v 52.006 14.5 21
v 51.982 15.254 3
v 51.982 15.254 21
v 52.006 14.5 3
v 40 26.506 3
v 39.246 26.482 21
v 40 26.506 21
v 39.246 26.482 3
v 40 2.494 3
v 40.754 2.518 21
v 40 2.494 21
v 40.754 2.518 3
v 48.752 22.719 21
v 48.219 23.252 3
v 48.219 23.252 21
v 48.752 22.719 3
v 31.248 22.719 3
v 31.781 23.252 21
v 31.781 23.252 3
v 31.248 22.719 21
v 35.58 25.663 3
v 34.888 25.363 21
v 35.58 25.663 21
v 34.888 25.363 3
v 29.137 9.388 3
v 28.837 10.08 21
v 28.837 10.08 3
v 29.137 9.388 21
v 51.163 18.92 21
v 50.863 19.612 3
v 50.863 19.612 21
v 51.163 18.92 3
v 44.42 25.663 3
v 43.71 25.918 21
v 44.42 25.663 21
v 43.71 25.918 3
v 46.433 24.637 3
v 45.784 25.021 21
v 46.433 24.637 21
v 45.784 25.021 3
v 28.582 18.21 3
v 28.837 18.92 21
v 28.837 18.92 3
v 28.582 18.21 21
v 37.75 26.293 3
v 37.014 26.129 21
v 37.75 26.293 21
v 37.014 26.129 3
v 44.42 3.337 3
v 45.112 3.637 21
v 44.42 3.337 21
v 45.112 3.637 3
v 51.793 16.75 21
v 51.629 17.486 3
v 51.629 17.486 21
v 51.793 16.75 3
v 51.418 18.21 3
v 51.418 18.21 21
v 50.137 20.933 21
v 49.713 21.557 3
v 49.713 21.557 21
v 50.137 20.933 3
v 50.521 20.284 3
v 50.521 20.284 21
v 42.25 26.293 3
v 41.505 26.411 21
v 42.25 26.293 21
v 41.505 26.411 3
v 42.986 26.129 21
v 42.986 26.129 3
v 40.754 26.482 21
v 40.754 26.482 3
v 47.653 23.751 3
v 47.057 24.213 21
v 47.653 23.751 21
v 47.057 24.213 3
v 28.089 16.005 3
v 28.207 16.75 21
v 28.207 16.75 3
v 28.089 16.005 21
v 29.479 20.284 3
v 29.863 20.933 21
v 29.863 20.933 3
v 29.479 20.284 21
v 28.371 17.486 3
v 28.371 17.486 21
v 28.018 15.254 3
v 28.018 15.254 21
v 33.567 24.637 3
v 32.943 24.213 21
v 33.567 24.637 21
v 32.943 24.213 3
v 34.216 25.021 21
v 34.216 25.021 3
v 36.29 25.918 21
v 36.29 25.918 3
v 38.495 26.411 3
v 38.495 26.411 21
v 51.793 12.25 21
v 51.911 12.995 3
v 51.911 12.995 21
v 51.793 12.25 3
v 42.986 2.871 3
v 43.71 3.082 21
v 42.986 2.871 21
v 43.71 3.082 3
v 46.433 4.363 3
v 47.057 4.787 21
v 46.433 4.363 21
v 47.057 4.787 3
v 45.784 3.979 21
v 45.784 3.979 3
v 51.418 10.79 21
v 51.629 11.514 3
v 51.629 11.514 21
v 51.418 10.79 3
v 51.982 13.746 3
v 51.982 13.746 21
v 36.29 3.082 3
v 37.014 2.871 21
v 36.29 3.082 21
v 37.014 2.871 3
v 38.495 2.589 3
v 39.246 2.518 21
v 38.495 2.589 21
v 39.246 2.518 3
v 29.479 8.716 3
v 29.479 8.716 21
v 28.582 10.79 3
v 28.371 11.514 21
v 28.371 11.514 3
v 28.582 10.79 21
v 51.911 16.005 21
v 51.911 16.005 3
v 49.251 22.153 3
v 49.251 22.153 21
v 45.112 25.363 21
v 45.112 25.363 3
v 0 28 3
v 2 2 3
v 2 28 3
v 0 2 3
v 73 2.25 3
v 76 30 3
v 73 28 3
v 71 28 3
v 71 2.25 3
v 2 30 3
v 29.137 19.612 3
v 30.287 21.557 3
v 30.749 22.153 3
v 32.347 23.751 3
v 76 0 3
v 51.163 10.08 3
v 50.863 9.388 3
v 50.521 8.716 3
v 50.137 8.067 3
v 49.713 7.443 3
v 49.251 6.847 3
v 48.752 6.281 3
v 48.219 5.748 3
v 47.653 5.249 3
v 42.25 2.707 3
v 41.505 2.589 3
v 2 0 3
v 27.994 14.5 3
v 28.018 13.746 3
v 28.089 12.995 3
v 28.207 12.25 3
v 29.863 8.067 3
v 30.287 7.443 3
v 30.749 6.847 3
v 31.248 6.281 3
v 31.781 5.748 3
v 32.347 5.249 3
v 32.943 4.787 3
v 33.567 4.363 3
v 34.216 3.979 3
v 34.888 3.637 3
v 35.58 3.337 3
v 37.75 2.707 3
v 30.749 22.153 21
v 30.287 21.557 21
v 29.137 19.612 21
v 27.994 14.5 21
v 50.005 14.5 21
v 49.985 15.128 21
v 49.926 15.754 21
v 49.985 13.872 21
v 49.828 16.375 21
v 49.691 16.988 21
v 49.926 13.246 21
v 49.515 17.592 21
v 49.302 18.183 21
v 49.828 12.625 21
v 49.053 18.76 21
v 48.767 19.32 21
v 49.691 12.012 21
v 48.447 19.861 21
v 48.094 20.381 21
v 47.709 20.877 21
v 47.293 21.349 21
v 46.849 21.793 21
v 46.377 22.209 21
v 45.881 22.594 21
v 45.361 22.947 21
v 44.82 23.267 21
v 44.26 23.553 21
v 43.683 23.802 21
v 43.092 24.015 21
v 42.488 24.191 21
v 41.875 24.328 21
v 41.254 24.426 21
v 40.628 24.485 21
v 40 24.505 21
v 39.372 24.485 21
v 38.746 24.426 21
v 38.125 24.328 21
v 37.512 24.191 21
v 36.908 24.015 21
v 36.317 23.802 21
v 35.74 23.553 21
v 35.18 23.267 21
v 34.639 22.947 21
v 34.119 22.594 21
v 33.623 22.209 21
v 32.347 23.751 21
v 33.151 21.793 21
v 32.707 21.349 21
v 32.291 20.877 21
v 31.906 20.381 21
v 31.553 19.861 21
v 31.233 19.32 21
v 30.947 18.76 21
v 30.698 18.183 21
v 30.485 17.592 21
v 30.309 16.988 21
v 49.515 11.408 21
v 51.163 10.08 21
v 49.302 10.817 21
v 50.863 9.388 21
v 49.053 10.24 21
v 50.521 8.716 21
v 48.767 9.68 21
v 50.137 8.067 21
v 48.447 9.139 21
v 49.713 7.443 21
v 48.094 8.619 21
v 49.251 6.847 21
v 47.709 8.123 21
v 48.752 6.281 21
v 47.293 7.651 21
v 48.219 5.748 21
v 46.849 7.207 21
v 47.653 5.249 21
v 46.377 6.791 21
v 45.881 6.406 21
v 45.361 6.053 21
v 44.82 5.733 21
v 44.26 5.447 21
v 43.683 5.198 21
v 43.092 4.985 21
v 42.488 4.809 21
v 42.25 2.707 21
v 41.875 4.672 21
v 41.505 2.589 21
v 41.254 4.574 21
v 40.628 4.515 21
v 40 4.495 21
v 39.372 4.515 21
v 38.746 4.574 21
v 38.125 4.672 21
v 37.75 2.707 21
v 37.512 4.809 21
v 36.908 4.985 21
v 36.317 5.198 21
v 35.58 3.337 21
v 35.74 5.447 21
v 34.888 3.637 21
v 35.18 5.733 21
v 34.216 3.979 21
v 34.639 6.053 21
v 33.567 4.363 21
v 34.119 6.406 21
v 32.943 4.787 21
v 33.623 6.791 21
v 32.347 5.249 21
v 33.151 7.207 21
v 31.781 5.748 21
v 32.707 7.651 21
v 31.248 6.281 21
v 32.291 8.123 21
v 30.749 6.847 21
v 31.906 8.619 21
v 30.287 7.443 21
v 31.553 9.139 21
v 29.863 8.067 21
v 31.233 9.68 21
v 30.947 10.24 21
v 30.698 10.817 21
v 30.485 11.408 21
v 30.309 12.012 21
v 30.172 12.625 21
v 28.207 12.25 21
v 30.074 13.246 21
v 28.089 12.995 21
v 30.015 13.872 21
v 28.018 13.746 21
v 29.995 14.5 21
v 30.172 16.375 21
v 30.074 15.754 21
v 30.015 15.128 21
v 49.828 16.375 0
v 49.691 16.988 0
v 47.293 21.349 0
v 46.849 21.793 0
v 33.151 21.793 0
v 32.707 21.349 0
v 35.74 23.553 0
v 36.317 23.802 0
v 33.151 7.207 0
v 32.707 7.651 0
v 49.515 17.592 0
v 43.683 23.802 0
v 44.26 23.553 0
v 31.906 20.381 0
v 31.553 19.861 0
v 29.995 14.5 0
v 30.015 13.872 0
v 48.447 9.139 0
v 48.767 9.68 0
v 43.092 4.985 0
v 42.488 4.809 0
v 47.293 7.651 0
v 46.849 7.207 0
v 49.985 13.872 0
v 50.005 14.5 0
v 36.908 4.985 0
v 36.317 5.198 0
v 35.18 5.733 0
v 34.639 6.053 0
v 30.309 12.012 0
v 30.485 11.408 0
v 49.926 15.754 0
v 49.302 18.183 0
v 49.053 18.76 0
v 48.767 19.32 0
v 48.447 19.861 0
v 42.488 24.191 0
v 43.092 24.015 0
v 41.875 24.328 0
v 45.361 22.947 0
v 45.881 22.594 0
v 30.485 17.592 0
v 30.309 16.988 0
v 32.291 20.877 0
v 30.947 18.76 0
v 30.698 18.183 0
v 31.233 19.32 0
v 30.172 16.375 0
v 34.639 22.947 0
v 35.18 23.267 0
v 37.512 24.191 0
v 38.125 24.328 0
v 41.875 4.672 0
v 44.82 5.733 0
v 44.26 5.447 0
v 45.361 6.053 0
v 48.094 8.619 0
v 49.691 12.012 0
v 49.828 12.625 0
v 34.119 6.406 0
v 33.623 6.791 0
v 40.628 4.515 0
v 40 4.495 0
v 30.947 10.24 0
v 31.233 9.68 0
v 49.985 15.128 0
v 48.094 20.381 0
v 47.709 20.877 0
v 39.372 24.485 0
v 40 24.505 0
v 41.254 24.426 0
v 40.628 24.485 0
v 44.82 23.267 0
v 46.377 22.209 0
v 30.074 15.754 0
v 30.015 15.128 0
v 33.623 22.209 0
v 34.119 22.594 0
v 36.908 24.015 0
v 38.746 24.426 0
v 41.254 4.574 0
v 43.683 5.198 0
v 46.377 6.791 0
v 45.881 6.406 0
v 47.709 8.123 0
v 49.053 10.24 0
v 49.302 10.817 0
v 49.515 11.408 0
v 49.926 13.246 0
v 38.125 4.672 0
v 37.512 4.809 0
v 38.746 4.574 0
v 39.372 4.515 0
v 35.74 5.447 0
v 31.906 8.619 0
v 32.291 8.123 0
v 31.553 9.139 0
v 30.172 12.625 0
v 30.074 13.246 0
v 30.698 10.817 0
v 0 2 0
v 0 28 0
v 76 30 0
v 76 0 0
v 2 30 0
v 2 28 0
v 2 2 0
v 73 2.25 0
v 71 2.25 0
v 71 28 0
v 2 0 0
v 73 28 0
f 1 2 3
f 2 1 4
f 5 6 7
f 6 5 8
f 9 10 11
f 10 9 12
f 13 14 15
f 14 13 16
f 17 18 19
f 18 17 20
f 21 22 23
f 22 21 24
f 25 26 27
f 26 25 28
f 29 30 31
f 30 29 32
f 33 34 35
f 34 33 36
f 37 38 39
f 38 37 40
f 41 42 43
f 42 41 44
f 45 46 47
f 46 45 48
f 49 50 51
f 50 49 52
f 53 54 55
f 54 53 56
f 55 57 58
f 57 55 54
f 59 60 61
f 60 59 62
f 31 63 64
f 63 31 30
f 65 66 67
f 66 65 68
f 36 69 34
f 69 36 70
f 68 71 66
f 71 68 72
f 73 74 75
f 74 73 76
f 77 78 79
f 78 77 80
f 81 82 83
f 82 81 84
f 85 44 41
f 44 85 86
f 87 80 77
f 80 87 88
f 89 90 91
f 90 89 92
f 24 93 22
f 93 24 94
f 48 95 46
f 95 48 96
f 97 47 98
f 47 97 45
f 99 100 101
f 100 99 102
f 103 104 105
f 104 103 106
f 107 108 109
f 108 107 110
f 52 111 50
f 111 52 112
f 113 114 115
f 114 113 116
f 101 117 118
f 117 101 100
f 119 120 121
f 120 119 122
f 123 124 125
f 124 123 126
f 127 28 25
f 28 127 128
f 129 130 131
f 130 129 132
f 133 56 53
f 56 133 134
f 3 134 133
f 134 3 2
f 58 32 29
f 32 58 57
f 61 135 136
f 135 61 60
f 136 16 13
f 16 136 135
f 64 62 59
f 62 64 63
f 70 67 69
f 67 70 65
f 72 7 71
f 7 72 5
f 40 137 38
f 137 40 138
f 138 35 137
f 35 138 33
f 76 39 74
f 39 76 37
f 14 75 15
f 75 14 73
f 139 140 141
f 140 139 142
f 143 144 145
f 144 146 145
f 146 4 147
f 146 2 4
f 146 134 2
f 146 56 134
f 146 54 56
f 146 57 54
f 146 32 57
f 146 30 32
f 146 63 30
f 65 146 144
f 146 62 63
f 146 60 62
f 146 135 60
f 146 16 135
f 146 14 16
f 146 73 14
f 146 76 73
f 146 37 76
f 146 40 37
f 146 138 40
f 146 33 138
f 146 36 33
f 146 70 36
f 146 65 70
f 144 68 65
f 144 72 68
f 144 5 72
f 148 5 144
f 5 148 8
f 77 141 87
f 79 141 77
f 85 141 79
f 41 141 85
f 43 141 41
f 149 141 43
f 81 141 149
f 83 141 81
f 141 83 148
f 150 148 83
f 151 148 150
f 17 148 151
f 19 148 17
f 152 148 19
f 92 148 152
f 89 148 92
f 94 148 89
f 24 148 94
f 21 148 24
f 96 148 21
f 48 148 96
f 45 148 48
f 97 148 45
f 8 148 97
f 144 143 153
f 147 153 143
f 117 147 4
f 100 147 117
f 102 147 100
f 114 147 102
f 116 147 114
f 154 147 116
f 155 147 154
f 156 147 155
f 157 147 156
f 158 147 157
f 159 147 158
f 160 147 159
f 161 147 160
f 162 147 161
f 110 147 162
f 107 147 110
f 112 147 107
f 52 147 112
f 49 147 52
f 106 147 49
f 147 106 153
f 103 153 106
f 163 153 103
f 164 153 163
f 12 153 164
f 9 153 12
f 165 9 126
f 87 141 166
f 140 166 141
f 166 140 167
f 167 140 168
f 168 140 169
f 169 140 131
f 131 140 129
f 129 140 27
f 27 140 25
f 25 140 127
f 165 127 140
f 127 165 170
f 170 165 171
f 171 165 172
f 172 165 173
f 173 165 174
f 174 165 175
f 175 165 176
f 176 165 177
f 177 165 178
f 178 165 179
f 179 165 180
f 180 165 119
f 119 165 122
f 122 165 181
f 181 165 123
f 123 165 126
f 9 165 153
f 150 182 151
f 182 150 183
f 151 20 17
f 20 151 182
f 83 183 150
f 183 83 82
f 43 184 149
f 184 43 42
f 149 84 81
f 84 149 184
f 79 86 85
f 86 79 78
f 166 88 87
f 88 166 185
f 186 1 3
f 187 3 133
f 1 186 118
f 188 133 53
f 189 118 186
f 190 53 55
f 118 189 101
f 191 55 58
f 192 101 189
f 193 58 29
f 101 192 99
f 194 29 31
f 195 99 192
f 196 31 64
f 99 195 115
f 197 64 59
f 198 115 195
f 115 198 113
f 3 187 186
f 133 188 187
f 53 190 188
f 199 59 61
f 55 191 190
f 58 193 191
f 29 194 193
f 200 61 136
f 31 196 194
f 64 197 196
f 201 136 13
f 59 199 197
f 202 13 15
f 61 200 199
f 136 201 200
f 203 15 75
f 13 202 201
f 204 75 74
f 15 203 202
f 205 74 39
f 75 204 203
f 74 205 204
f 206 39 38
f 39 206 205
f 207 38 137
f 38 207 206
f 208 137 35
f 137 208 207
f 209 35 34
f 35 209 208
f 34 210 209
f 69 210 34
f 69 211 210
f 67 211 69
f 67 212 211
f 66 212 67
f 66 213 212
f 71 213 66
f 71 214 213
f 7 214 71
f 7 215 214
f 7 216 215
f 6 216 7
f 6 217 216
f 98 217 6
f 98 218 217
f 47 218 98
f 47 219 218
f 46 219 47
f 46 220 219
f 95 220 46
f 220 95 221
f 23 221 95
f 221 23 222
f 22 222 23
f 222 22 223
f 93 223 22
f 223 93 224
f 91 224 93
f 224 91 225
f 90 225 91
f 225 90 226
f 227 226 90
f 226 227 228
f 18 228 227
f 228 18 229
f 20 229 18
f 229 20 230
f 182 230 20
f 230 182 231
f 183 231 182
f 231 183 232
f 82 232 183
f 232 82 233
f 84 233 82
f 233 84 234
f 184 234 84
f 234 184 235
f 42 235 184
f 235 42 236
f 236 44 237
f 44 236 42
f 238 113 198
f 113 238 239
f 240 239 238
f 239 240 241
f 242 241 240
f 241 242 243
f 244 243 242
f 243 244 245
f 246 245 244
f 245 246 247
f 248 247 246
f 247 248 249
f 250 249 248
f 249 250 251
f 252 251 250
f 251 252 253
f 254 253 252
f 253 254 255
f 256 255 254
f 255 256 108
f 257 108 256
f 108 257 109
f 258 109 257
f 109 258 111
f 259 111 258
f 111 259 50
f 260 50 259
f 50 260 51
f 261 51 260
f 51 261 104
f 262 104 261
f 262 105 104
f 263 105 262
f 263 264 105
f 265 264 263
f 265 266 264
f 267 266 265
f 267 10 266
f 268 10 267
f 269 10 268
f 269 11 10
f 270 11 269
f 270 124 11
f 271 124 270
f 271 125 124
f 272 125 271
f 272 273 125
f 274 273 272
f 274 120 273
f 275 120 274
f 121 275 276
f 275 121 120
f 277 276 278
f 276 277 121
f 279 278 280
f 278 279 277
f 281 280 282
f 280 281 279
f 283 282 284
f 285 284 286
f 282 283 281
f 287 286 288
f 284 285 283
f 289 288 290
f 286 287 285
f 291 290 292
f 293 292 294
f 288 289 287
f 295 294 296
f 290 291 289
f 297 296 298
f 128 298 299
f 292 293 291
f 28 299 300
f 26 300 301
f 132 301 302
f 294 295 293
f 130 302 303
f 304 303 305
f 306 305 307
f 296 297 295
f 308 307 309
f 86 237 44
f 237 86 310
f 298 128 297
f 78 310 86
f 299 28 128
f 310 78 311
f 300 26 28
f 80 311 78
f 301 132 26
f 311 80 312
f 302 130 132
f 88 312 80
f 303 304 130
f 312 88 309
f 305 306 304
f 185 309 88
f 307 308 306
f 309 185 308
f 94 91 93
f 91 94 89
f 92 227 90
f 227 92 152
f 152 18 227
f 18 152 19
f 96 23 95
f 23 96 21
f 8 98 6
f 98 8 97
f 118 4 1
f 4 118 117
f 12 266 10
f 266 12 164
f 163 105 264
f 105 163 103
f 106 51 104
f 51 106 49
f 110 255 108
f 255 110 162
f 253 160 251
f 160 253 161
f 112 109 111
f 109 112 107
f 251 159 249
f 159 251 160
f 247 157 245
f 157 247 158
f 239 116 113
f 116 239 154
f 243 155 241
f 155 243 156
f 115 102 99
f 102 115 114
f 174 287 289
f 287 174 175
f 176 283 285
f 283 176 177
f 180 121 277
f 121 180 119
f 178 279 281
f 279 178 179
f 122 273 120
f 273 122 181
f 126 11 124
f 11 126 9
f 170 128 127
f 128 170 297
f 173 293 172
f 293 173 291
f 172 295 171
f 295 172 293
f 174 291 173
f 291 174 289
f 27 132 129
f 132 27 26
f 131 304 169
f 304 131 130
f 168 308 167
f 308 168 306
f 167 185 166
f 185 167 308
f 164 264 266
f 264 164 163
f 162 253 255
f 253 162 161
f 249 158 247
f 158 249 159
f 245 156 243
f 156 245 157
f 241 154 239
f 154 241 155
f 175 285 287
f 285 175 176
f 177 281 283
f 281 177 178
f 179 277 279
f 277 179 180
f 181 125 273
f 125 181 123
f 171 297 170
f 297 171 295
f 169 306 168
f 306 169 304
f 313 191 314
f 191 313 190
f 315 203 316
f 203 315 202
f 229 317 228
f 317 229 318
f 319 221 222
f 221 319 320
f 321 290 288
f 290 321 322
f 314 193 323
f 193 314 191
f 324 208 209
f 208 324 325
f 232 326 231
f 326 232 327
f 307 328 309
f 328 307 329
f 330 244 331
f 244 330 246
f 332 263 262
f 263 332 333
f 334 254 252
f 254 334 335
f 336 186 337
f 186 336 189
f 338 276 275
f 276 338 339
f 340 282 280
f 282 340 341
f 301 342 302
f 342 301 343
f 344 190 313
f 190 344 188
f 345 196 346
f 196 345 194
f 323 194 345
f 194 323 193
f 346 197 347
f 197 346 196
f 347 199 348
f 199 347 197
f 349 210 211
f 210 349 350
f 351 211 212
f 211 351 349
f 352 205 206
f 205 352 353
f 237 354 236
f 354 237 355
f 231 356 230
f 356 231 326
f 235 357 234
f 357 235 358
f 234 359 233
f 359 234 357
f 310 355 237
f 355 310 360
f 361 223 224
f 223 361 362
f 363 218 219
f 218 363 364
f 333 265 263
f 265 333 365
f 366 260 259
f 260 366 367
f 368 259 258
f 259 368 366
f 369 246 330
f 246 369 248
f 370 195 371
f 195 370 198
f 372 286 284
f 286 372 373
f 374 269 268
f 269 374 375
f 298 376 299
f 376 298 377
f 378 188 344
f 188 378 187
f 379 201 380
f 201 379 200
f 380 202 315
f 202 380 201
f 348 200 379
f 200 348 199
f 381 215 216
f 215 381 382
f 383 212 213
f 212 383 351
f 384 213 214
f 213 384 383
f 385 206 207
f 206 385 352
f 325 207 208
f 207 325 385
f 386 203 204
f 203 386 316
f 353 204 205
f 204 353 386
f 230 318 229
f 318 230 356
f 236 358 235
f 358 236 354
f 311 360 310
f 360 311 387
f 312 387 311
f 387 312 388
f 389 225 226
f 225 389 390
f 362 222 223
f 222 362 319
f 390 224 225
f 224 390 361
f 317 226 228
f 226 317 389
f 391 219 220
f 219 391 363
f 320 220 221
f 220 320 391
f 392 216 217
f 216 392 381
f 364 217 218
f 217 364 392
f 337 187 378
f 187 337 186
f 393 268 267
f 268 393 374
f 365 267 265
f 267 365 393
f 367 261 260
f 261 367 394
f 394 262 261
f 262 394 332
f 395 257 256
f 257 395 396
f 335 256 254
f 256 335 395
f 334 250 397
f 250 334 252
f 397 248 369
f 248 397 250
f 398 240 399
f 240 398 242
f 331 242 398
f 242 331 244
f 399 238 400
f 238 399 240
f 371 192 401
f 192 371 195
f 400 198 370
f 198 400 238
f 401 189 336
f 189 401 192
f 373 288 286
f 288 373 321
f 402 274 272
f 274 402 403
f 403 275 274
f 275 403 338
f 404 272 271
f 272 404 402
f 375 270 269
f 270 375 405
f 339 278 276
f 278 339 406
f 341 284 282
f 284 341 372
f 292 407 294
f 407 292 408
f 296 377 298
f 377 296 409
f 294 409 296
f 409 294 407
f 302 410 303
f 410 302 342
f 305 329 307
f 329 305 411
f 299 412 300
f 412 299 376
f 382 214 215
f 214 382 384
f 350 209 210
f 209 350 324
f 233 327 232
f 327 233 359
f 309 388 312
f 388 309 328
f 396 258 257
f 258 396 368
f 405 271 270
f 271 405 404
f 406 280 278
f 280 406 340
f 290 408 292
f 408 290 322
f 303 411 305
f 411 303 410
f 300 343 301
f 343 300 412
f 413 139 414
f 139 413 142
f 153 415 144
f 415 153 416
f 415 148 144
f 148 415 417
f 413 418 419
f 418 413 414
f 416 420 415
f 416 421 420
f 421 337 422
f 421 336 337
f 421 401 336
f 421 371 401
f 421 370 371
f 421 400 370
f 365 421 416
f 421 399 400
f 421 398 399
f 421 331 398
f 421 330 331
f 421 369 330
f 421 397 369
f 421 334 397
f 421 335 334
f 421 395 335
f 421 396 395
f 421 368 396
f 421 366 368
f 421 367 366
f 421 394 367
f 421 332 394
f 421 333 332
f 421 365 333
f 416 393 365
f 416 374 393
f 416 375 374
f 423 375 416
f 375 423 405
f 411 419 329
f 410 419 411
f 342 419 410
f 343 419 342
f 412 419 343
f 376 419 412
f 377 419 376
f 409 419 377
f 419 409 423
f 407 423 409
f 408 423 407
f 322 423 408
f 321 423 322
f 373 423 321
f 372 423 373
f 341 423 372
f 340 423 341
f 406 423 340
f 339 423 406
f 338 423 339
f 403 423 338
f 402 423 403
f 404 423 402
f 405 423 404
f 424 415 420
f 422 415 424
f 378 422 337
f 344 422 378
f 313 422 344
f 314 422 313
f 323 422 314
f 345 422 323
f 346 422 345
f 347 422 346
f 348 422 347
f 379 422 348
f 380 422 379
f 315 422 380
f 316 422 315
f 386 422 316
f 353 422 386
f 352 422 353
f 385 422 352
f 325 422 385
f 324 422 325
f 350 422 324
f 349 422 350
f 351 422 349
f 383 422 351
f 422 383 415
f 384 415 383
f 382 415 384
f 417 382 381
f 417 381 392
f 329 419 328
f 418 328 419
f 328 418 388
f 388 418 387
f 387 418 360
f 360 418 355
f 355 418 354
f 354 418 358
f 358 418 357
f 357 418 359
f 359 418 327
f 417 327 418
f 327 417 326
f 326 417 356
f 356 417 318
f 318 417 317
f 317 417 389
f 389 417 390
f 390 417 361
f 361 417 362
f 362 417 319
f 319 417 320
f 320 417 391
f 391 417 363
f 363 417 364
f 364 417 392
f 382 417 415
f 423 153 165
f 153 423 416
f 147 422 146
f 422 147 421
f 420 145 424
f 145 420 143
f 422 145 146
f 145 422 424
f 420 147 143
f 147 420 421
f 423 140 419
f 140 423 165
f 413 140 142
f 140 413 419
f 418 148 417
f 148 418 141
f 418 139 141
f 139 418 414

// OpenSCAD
// NoBlo

module cylinder_outer(height,radius,fn){
   fudge = 1/cos(180/fn);
   cylinder(h=height,r=radius*fudge,$fn=fn);
    }
 
difference() {
       // NoBlo Top
       translate([0,0,0]) {
        color([1,.5,.5])
        cube([76,30,3]);
       }
    
    // Objective Hole
    translate([40,14.5,-2]) {
        cylinder_outer(8,10,100);
    }
    
    // Door Hole
    translate([71, 2.25, -2]) {
      cube([2,25.75,6]);
    }
    
    // Guide Cubes
    translate([0,0,-2]) {
        cube([2,2,12]);     
      }
      translate([0,28,-2]) {
        cube([2,2,12]);     
      }
 }
   
 // Optical tube
   difference() {
   // outer wall
   translate([40, 14.5, 3]) {
       color([0,0,1])
       cylinder_outer(18,12,100);
    }
    //inner wall
    translate([40,14.5,2]) {
       cylinder_outer(25,10,100);
    }
}
    
